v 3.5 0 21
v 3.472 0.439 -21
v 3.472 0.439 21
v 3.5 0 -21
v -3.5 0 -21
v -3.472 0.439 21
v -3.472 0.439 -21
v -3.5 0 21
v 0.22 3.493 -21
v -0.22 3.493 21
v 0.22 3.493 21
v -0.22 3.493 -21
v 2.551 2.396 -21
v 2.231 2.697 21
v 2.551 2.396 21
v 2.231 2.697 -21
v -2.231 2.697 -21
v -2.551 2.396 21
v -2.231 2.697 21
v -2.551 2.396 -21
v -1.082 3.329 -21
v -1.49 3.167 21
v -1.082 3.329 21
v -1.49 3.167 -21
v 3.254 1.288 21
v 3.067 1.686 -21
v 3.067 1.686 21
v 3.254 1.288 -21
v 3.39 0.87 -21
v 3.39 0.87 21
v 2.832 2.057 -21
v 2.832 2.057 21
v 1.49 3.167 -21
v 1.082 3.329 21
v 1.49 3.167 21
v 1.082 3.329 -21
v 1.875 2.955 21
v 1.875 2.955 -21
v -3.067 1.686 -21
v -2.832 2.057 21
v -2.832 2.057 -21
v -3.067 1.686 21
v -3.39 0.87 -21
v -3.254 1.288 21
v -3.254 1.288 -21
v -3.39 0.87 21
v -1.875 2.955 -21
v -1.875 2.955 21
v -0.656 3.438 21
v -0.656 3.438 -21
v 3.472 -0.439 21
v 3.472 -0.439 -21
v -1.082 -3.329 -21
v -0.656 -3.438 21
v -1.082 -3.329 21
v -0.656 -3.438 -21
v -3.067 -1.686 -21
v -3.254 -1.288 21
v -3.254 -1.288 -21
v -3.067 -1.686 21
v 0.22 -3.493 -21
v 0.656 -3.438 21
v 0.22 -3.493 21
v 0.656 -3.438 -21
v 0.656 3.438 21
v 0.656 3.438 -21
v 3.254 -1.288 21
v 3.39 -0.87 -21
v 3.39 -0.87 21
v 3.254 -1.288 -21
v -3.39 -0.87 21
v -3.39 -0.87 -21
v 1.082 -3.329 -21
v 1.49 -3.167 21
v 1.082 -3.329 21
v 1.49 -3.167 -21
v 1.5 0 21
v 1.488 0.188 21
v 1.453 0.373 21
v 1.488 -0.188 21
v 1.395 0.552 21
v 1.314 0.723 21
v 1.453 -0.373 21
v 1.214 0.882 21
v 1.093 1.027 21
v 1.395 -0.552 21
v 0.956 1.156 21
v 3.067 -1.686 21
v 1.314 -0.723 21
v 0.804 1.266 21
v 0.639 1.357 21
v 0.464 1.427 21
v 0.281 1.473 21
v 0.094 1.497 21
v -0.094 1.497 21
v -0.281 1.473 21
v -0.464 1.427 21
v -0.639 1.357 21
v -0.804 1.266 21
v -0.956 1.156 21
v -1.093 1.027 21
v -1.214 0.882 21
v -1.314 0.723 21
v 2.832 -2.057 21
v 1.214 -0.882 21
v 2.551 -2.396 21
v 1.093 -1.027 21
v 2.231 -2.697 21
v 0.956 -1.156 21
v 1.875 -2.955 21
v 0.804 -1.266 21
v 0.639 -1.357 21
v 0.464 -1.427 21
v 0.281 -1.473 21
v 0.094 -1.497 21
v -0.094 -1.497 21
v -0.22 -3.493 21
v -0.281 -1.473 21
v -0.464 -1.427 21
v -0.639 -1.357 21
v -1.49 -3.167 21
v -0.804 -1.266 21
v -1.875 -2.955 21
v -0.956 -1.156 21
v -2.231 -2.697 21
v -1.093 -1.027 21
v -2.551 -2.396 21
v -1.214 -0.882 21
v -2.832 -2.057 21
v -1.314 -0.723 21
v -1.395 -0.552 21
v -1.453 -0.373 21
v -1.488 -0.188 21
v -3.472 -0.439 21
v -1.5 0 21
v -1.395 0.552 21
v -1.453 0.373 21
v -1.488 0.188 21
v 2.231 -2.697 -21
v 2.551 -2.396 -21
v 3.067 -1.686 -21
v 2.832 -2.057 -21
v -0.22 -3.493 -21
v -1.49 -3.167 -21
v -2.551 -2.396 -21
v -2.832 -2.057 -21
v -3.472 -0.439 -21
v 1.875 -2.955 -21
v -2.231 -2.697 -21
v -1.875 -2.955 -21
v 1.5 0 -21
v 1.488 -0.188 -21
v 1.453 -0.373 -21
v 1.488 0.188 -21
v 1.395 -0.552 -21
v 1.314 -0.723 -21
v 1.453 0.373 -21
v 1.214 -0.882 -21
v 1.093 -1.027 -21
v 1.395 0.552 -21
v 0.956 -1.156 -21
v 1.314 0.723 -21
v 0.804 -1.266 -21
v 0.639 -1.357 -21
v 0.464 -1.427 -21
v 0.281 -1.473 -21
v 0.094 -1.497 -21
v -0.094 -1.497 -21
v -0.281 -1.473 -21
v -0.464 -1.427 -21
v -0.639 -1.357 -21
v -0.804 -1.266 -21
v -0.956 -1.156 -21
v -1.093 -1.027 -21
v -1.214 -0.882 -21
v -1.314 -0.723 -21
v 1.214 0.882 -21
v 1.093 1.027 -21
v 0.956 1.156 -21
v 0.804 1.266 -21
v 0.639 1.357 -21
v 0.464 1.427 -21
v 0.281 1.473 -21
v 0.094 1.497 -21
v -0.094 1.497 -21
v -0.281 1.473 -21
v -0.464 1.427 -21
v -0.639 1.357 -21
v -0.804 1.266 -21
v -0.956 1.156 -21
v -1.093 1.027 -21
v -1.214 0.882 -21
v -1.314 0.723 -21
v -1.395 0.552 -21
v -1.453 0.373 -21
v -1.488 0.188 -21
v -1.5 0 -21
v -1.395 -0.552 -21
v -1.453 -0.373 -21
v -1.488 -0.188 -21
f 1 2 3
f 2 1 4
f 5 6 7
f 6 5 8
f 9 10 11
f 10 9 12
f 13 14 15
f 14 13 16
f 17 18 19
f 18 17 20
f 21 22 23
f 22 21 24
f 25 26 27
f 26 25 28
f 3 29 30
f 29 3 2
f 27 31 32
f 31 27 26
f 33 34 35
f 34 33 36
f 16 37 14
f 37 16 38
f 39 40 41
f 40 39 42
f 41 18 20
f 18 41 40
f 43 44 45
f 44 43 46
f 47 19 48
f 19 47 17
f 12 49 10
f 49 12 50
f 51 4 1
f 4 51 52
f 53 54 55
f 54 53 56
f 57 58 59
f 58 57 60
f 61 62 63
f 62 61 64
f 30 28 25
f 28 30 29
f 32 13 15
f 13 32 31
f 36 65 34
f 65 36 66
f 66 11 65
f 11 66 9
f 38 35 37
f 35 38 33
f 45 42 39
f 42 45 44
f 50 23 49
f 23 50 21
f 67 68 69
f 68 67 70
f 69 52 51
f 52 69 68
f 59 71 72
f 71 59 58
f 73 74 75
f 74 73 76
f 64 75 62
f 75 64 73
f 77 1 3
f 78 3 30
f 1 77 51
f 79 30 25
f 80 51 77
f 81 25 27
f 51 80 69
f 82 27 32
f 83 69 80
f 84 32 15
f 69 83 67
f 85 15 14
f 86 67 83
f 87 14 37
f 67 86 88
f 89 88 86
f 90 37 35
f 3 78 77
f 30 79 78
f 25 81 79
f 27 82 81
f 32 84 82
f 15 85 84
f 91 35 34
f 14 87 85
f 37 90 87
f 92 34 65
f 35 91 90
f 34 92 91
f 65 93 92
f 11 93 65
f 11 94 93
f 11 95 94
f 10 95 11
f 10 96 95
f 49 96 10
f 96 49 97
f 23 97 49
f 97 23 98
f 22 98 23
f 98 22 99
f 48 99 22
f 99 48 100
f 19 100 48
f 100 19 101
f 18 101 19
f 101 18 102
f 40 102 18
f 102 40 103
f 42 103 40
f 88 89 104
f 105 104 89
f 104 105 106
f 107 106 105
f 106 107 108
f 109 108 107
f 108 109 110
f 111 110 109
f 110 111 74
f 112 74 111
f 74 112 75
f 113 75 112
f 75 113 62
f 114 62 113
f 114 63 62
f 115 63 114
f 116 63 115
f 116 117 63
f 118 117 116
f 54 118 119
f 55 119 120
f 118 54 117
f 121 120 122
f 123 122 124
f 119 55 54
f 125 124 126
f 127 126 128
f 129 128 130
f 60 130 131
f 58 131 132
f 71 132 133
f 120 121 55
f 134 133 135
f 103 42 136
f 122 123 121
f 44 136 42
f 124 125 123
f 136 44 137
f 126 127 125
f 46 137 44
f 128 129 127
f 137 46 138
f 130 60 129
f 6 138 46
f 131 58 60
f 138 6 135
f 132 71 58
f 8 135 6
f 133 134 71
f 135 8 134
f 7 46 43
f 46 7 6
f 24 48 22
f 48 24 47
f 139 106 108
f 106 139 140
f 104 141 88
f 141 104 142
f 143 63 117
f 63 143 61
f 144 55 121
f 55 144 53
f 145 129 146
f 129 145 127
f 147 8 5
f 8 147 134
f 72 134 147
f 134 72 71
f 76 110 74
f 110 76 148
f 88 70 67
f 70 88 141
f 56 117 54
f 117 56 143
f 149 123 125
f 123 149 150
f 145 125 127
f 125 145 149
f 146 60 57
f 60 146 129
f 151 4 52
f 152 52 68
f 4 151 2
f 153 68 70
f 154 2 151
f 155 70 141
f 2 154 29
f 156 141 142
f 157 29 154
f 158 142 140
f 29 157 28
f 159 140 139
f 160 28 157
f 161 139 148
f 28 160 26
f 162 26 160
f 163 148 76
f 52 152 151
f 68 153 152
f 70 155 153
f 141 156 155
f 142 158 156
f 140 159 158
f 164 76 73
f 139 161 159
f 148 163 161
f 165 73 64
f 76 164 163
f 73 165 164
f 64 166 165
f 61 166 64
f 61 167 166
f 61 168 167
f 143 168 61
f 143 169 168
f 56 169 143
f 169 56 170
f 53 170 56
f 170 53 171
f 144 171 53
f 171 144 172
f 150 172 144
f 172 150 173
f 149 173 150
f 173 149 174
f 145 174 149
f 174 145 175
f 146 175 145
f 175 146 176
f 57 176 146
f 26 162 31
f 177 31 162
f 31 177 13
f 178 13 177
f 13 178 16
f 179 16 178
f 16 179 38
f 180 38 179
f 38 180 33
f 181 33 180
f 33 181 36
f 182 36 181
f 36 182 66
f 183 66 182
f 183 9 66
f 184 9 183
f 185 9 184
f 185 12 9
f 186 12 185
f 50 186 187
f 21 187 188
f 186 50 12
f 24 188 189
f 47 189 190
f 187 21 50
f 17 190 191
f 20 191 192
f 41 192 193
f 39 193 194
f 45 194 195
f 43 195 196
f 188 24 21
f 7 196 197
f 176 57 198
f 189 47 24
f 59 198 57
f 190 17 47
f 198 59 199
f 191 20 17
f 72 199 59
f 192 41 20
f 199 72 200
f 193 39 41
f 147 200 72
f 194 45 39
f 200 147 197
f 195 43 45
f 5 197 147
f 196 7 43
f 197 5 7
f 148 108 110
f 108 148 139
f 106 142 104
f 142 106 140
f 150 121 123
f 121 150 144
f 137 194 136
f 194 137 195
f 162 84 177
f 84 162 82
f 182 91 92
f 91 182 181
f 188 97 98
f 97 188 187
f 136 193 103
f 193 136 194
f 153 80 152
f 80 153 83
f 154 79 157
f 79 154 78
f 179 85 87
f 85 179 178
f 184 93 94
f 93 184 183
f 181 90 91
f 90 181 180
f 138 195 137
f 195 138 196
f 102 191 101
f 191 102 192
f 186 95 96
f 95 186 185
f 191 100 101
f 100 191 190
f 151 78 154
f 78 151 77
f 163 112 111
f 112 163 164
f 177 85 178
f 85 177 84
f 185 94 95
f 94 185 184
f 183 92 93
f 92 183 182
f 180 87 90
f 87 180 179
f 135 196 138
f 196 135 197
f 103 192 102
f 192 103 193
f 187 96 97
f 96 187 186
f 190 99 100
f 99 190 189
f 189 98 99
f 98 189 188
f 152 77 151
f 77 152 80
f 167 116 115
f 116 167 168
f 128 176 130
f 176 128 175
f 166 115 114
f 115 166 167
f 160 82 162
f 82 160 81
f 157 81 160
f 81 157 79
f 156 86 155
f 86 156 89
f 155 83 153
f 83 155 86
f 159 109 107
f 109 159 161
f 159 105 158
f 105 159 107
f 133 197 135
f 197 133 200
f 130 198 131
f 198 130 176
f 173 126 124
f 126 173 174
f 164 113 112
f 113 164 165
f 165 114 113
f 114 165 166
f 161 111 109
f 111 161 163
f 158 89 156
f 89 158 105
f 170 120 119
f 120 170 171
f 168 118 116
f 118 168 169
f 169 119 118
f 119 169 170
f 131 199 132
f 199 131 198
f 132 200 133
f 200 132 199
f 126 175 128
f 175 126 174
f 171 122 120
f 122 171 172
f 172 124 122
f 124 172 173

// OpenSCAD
$fn = 50;


difference() {
	union() {
		translate(v = [0, 0, -21.0000000000]) {
			cylinder(h = 42, r = 3.5000000000);
		}
	}
	union() {
		translate(v = [0, 0, -100.0000000000]) {
			cylinder(h = 200, r = 1.5000000000);
		}
	}
}
